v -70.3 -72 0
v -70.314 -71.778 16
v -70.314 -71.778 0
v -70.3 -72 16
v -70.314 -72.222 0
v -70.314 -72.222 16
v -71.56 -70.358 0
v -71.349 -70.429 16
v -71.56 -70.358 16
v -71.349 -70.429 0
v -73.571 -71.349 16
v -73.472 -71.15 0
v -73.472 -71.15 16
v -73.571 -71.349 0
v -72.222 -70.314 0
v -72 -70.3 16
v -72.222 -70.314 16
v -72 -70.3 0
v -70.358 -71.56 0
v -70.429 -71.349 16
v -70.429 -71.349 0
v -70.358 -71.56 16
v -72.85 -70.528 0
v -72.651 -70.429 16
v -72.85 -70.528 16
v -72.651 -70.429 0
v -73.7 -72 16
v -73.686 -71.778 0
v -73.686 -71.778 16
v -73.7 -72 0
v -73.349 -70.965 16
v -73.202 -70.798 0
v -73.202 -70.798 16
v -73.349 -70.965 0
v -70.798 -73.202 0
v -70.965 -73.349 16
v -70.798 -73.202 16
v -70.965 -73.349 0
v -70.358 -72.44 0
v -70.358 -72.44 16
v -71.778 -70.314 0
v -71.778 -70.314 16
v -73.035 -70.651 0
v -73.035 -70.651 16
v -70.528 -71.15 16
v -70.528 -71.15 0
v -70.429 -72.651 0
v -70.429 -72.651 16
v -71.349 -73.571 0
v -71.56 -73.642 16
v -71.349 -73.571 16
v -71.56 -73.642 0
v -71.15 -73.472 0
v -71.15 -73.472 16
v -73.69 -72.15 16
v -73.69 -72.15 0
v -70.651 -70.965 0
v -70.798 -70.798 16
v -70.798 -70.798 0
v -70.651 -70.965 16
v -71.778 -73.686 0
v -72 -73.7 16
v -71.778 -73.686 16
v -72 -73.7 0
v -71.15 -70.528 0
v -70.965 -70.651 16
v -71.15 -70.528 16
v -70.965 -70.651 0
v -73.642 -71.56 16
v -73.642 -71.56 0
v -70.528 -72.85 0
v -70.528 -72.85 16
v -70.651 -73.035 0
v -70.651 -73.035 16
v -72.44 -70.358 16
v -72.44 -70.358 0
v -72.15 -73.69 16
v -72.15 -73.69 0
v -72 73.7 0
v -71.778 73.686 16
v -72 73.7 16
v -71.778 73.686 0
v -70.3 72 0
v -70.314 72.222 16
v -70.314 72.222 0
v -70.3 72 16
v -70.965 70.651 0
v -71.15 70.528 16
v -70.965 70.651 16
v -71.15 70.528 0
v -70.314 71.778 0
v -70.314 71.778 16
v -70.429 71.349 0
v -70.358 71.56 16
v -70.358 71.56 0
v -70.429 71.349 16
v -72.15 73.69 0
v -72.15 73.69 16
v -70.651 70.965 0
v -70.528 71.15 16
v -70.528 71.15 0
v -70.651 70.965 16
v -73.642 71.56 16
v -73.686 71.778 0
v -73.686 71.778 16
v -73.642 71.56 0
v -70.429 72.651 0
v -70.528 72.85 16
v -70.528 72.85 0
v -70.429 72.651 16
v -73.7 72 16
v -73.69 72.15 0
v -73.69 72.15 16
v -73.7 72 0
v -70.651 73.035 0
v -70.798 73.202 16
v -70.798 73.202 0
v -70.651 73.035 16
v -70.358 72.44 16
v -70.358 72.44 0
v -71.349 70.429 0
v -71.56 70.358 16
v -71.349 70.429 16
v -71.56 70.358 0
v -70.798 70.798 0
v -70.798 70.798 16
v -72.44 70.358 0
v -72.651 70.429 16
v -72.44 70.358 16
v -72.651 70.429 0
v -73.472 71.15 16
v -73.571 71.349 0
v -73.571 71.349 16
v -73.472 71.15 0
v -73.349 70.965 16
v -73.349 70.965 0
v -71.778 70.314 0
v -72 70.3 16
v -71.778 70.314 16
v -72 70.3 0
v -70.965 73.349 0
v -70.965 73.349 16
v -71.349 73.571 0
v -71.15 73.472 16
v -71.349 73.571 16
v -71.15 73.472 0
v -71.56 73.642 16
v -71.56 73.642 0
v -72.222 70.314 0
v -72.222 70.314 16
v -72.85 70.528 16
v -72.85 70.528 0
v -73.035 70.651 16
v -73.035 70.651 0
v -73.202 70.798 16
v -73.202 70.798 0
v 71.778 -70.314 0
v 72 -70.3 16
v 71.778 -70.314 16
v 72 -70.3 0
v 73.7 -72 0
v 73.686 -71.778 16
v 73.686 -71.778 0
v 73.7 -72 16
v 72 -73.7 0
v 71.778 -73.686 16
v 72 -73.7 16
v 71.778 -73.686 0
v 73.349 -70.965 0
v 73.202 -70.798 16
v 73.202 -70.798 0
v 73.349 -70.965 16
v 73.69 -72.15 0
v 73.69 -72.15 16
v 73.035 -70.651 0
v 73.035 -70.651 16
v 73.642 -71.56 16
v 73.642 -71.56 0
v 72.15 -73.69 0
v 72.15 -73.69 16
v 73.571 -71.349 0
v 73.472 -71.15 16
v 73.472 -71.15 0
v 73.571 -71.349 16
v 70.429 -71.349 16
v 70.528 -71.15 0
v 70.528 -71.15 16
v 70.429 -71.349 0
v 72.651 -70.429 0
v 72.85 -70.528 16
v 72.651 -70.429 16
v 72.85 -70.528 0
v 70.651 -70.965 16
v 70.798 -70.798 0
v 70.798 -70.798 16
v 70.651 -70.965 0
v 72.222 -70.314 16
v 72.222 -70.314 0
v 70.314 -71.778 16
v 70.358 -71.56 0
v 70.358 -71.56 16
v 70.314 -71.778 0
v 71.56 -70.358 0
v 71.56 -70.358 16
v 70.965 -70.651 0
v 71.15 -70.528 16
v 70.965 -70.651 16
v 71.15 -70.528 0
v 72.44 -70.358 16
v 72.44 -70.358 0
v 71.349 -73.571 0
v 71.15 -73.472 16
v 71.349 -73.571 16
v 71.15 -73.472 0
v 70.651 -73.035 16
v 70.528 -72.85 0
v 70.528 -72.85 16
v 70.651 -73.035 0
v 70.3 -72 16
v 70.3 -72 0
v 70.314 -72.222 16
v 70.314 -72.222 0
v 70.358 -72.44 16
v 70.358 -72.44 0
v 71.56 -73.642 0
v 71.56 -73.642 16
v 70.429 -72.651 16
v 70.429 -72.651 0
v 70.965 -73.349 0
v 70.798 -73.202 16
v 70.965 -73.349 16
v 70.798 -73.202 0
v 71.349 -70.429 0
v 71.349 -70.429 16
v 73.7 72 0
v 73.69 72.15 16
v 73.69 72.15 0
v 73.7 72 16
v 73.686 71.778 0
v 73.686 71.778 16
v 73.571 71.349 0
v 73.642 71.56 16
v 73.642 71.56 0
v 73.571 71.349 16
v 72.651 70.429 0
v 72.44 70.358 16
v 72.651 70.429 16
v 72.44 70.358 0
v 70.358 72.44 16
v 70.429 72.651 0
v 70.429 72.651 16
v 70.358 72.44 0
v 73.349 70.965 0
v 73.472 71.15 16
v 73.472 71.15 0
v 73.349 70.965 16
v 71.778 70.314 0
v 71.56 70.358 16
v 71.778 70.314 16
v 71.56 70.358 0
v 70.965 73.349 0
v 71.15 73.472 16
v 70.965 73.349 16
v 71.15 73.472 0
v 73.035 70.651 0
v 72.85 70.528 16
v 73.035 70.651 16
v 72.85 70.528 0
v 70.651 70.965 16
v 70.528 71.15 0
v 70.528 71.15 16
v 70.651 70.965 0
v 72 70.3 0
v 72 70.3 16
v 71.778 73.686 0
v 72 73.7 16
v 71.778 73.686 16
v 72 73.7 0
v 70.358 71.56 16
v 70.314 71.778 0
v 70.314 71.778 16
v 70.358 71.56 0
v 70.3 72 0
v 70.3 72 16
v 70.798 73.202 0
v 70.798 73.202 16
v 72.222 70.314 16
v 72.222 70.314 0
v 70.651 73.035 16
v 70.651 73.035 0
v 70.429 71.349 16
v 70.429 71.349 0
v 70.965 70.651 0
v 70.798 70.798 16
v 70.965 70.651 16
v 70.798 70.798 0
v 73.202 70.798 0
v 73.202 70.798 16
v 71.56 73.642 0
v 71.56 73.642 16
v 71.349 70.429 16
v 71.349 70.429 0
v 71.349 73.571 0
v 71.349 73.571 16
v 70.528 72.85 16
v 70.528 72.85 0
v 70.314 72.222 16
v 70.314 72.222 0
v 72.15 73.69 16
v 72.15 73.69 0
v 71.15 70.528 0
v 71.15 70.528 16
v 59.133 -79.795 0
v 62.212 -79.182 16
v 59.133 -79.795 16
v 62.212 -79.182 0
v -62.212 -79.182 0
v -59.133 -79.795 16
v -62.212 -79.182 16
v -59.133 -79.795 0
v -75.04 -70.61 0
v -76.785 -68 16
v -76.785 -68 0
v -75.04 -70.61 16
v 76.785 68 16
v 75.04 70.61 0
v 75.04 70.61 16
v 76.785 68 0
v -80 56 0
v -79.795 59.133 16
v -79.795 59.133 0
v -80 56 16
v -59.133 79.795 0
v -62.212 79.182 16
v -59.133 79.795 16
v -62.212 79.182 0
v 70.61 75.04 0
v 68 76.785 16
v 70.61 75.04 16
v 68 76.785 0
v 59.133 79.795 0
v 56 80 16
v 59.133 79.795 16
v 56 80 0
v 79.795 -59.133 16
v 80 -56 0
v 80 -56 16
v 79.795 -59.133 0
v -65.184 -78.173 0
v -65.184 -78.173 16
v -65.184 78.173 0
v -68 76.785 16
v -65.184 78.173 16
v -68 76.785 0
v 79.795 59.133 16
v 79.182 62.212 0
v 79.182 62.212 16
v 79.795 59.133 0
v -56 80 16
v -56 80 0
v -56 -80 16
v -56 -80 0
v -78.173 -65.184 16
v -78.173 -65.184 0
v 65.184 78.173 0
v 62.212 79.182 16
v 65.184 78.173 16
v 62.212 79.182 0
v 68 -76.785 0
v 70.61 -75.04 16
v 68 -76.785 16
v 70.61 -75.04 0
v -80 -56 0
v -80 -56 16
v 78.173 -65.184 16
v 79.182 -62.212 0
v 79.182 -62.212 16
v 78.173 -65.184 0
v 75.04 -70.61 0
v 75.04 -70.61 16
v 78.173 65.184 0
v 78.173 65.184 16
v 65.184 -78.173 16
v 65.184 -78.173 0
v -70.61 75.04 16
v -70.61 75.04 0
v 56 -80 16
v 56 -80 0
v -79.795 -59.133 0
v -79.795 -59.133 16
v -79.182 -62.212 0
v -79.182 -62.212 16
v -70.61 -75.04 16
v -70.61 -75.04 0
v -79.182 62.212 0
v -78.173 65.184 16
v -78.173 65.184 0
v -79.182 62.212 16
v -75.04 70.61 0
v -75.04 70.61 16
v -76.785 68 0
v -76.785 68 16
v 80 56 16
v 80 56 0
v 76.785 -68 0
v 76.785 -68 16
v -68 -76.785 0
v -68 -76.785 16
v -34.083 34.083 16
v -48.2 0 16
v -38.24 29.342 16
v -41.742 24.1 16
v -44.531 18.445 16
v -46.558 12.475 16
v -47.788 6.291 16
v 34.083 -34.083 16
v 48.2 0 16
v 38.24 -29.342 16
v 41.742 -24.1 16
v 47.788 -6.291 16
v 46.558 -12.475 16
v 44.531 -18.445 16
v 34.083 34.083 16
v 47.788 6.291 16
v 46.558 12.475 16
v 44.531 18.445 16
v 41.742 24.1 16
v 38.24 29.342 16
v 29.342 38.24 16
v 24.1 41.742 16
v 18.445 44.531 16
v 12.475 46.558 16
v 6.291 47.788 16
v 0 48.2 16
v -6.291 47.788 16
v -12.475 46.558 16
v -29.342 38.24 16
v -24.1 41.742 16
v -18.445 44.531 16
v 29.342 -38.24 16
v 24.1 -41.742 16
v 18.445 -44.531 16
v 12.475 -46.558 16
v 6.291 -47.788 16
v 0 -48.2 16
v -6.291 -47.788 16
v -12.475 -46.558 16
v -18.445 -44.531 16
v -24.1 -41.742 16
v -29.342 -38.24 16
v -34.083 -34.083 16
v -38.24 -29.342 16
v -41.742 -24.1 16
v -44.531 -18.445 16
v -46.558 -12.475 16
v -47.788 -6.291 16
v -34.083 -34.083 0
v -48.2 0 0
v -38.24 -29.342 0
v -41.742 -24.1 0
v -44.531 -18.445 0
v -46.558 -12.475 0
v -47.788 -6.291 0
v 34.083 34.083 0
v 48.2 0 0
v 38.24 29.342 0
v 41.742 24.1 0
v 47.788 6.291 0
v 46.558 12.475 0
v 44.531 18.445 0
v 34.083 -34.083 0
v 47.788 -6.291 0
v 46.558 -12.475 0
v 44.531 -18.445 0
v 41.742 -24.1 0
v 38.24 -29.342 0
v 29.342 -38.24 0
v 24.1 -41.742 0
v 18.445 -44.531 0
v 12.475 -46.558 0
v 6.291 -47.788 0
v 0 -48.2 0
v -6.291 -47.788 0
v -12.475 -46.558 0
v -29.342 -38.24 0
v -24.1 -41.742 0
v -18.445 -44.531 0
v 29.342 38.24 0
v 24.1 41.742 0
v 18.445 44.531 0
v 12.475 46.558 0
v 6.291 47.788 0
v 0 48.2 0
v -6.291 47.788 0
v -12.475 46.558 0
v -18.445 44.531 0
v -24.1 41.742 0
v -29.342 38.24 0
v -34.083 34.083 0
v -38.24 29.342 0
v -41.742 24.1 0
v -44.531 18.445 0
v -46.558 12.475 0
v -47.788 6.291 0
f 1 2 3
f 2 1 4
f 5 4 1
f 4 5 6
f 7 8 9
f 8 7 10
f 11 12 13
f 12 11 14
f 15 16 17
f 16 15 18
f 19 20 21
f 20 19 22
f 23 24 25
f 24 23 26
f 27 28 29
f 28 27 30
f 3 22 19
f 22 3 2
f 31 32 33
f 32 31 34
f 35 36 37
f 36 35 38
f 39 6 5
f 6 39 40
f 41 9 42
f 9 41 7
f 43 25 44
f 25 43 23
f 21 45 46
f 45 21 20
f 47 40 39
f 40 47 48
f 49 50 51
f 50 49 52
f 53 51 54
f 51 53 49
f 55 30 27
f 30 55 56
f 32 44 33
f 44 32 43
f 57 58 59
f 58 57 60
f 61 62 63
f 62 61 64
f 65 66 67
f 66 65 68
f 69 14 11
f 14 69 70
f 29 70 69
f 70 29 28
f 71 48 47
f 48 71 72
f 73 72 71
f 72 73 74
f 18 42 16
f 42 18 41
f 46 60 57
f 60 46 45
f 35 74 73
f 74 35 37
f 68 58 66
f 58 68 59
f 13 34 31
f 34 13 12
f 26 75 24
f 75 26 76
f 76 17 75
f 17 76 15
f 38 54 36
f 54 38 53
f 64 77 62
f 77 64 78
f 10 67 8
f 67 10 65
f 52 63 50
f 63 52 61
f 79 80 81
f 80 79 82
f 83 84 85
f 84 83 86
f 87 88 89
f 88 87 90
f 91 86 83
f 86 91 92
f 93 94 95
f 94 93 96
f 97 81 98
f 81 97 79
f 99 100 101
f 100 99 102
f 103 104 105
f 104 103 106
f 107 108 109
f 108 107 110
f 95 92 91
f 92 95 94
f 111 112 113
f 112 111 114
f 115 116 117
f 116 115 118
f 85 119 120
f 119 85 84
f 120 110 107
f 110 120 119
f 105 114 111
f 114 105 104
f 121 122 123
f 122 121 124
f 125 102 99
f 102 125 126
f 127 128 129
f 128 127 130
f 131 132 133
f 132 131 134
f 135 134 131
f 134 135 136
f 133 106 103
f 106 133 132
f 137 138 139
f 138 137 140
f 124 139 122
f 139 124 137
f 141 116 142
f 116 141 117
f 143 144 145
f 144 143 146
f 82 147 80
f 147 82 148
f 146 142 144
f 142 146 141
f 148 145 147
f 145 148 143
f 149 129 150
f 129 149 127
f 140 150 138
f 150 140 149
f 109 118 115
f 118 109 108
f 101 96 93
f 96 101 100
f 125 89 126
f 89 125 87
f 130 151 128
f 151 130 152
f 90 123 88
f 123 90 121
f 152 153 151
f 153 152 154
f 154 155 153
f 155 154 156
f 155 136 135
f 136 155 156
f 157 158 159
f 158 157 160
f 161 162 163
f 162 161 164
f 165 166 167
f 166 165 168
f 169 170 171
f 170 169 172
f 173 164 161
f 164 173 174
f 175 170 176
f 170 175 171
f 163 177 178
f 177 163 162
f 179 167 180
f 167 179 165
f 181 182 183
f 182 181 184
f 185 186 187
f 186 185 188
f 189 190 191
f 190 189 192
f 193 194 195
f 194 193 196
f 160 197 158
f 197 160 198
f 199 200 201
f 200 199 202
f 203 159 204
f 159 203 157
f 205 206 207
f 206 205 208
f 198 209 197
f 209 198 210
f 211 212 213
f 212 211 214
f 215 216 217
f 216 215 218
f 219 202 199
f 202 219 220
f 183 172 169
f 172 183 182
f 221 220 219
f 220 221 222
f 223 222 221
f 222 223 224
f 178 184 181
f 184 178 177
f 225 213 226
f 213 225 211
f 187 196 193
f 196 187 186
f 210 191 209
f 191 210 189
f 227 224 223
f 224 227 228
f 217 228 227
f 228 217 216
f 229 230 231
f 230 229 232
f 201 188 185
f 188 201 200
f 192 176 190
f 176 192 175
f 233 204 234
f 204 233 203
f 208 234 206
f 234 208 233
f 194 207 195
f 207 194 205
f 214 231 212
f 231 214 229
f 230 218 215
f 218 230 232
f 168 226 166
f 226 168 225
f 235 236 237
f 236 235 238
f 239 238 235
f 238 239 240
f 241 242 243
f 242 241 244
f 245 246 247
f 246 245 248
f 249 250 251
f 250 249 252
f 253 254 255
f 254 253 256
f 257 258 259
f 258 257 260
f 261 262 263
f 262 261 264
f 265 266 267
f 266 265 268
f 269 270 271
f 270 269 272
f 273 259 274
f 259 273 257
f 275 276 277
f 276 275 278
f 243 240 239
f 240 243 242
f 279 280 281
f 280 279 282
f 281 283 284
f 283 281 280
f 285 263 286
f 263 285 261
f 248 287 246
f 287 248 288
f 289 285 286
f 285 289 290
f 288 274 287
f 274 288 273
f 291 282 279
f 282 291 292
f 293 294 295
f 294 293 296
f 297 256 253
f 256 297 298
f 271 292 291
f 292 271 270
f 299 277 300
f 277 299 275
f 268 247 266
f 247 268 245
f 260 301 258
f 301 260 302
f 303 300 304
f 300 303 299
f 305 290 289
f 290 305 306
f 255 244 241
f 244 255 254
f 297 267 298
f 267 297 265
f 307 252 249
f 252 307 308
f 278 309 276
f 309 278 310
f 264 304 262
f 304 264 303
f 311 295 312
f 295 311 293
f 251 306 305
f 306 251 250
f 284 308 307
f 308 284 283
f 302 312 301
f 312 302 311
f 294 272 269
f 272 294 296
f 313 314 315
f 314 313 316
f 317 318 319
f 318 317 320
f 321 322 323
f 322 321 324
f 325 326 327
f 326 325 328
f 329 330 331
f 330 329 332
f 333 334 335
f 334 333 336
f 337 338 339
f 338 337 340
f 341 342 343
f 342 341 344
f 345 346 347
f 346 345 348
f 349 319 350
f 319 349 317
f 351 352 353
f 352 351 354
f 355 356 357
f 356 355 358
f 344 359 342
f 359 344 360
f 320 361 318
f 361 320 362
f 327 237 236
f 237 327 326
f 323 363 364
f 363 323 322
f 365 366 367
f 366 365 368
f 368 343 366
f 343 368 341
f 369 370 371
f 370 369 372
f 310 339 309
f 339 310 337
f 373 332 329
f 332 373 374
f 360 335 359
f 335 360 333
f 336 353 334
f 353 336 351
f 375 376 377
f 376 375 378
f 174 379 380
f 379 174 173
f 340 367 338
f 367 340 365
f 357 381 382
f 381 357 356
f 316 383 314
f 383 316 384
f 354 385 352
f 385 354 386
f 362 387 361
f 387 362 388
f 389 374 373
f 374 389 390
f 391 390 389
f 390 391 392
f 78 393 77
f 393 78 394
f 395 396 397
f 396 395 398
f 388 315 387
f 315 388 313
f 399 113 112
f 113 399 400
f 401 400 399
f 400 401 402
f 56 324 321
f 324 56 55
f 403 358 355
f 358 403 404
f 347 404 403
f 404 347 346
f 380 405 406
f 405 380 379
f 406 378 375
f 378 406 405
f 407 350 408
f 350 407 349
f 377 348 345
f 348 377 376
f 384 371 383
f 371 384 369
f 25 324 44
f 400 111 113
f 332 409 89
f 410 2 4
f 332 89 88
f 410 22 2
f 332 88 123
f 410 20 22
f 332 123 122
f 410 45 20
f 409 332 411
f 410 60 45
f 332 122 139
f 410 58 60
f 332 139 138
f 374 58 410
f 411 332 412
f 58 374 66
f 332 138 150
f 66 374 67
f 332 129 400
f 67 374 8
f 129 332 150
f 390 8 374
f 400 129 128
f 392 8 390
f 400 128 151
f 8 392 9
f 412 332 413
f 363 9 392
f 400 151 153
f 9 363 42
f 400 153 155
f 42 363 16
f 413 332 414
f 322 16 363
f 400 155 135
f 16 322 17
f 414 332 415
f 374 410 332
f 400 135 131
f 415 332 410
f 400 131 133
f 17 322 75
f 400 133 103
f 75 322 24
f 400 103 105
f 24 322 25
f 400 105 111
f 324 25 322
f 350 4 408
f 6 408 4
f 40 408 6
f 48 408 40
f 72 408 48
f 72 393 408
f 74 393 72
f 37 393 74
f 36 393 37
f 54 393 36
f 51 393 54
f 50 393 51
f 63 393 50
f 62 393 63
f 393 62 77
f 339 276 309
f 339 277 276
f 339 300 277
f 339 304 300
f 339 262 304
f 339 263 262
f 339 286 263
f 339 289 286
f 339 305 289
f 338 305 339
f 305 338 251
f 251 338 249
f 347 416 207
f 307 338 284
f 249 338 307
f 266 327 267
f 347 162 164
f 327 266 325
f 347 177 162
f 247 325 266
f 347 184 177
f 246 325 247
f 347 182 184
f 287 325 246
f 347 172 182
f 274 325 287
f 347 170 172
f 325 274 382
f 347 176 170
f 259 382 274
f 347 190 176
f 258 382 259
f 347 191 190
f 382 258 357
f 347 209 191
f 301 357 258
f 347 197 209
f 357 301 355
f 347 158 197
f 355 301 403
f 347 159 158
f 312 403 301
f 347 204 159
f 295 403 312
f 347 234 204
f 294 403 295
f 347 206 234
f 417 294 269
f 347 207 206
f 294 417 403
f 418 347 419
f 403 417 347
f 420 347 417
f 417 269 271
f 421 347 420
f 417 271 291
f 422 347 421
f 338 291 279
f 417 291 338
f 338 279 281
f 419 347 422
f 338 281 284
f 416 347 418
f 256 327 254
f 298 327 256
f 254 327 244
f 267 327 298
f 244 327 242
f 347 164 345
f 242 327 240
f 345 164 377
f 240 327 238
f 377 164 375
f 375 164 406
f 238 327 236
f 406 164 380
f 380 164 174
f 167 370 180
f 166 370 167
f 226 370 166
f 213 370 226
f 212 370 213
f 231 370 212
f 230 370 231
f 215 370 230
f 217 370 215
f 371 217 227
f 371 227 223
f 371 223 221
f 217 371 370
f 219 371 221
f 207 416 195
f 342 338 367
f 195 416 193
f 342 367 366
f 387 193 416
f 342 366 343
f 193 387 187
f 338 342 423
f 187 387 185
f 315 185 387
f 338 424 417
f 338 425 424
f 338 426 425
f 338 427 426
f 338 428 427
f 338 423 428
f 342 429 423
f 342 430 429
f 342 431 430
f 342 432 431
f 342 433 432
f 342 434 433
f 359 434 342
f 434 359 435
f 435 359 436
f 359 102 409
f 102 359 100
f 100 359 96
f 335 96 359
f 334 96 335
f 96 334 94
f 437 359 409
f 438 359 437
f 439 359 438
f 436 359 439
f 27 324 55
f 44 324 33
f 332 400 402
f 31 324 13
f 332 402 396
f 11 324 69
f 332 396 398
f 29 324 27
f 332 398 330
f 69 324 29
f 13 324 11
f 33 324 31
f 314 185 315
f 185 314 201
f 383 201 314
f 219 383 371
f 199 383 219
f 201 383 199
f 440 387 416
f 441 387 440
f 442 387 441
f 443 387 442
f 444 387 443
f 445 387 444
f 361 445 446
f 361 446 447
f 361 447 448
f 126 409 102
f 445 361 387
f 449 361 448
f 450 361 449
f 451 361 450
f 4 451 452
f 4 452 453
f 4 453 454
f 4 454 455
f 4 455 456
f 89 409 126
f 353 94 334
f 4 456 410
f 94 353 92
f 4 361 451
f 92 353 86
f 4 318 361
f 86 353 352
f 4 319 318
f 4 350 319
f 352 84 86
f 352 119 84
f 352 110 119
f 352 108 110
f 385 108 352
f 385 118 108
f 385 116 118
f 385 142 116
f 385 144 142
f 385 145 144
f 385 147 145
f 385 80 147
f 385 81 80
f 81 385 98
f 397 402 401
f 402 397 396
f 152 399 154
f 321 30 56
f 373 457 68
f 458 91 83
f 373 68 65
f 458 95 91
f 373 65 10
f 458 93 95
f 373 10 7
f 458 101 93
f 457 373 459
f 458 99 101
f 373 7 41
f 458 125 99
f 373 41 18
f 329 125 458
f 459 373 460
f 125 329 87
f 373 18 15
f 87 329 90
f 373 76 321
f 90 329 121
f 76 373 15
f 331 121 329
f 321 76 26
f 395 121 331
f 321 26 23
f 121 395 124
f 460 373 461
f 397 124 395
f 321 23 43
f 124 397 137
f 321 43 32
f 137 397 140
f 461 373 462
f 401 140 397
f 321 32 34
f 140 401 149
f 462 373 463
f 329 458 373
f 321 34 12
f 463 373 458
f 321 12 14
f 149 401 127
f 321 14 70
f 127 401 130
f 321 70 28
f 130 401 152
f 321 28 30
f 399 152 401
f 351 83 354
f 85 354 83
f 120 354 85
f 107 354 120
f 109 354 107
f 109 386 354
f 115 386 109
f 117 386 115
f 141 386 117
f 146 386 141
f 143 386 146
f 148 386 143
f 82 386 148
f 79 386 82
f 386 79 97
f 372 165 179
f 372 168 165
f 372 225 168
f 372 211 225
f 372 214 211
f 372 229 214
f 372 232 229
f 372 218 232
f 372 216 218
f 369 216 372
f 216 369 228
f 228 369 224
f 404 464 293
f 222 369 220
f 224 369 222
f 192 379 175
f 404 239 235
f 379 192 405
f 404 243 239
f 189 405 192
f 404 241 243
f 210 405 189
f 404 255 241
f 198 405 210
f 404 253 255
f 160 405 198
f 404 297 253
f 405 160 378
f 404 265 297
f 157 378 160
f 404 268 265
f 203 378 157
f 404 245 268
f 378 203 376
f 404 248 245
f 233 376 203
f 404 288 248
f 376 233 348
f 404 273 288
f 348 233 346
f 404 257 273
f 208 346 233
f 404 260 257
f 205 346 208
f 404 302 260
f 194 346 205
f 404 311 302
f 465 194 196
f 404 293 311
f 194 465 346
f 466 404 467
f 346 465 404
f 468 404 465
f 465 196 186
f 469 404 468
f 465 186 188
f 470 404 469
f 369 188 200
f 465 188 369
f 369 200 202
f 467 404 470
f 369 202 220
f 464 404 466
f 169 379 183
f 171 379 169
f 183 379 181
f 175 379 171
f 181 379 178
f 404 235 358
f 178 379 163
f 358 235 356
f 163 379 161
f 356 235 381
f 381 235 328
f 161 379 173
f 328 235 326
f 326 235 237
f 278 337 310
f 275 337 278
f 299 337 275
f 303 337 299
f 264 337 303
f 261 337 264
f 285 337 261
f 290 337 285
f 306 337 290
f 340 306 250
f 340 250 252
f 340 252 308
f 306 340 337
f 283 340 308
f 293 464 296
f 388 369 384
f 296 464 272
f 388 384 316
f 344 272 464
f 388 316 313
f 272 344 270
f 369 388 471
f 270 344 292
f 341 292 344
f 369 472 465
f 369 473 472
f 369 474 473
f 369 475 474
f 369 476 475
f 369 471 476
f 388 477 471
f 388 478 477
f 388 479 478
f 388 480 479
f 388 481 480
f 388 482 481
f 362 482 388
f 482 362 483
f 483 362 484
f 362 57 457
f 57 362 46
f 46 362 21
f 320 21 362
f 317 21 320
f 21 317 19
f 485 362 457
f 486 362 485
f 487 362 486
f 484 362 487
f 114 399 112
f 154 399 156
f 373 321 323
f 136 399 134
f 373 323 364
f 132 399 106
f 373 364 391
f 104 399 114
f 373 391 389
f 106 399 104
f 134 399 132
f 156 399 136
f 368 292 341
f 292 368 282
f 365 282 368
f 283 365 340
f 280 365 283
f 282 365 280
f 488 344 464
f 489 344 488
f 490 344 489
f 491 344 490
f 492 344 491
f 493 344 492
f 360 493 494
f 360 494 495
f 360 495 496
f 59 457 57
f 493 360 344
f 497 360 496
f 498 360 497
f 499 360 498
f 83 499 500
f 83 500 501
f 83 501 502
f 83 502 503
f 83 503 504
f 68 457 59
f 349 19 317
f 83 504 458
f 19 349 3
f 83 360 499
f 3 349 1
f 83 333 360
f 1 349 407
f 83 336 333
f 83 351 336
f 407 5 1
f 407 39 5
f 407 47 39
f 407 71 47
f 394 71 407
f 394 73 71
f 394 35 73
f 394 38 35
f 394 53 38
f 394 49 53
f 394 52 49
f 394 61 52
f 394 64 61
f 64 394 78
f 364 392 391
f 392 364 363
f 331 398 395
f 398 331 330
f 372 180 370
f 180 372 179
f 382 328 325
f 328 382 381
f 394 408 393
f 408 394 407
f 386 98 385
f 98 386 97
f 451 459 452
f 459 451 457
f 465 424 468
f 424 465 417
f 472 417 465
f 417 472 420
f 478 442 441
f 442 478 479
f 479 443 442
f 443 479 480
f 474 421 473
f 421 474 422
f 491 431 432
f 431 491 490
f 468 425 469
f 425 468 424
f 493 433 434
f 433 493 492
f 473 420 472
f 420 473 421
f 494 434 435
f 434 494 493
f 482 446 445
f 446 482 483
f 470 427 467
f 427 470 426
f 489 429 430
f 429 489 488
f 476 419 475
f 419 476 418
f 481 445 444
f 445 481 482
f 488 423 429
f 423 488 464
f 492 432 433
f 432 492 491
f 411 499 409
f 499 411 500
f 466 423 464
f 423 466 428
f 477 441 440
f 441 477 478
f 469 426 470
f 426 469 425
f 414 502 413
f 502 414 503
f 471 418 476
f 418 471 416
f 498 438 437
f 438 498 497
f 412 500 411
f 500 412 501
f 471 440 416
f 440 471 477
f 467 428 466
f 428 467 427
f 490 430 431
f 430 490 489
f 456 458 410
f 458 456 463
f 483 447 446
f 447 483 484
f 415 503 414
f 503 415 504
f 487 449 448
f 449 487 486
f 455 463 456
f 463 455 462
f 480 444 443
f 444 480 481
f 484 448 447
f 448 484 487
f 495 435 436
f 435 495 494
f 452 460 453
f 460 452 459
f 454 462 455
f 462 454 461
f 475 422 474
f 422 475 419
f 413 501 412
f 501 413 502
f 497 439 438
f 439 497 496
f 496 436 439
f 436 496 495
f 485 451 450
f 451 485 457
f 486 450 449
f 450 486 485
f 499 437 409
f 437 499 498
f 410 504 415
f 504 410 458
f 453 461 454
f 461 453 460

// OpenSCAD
// ============================================================================
// Get Me An Alt — Parametric OpenSCAD Module
// Part: PRT-03 — Twist-Lock HEPA H13 Filter Compression Retainer (hepa-filter-frame)
// Function: Prevents unfiltered air bypass between intake shell and blower.
// Target Bounding Box (mm): [160, 160, 16]
// Print Material: PETG | Min Wall: >= 1.6mm | Tolerance: 0.2mm
// ============================================================================
$fn = 48;
part_width = 160;
part_depth = 160;
part_height = 16;
wall_thickness = 3.2;
floor_thickness = 3.2;
corner_radius = 24;
tolerance = 0.2;
m3_clearance_d = 3.4; // M3 screw clearance hole (3.0mm + 2*0.2mm)

module rounded_rect_prism(w, d, h, r) {
  cr = max(0.5, min(r, min(w, d) / 2 - 0.1));
  linear_extrude(height = h)
    offset(r = cr)
      offset(r = -cr)
        square([w, d], center = true);
}

module part_hepa_filter_frame() {
  difference() {
    rounded_rect_prism(part_width, part_depth, part_height, corner_radius);
    translate([0, 0, -1]) cylinder(h = part_height + 2, r = 48 + tolerance);
    // M3 corner mounting holes
    for (mx = [-1, 1], my = [-1, 1]) {
      translate([mx * (part_width / 2 - 8), my * (part_depth / 2 - 8), -1])
        cylinder(h = part_height + 2, d = m3_clearance_d);
    }
  }
}

part_hepa_filter_frame();
